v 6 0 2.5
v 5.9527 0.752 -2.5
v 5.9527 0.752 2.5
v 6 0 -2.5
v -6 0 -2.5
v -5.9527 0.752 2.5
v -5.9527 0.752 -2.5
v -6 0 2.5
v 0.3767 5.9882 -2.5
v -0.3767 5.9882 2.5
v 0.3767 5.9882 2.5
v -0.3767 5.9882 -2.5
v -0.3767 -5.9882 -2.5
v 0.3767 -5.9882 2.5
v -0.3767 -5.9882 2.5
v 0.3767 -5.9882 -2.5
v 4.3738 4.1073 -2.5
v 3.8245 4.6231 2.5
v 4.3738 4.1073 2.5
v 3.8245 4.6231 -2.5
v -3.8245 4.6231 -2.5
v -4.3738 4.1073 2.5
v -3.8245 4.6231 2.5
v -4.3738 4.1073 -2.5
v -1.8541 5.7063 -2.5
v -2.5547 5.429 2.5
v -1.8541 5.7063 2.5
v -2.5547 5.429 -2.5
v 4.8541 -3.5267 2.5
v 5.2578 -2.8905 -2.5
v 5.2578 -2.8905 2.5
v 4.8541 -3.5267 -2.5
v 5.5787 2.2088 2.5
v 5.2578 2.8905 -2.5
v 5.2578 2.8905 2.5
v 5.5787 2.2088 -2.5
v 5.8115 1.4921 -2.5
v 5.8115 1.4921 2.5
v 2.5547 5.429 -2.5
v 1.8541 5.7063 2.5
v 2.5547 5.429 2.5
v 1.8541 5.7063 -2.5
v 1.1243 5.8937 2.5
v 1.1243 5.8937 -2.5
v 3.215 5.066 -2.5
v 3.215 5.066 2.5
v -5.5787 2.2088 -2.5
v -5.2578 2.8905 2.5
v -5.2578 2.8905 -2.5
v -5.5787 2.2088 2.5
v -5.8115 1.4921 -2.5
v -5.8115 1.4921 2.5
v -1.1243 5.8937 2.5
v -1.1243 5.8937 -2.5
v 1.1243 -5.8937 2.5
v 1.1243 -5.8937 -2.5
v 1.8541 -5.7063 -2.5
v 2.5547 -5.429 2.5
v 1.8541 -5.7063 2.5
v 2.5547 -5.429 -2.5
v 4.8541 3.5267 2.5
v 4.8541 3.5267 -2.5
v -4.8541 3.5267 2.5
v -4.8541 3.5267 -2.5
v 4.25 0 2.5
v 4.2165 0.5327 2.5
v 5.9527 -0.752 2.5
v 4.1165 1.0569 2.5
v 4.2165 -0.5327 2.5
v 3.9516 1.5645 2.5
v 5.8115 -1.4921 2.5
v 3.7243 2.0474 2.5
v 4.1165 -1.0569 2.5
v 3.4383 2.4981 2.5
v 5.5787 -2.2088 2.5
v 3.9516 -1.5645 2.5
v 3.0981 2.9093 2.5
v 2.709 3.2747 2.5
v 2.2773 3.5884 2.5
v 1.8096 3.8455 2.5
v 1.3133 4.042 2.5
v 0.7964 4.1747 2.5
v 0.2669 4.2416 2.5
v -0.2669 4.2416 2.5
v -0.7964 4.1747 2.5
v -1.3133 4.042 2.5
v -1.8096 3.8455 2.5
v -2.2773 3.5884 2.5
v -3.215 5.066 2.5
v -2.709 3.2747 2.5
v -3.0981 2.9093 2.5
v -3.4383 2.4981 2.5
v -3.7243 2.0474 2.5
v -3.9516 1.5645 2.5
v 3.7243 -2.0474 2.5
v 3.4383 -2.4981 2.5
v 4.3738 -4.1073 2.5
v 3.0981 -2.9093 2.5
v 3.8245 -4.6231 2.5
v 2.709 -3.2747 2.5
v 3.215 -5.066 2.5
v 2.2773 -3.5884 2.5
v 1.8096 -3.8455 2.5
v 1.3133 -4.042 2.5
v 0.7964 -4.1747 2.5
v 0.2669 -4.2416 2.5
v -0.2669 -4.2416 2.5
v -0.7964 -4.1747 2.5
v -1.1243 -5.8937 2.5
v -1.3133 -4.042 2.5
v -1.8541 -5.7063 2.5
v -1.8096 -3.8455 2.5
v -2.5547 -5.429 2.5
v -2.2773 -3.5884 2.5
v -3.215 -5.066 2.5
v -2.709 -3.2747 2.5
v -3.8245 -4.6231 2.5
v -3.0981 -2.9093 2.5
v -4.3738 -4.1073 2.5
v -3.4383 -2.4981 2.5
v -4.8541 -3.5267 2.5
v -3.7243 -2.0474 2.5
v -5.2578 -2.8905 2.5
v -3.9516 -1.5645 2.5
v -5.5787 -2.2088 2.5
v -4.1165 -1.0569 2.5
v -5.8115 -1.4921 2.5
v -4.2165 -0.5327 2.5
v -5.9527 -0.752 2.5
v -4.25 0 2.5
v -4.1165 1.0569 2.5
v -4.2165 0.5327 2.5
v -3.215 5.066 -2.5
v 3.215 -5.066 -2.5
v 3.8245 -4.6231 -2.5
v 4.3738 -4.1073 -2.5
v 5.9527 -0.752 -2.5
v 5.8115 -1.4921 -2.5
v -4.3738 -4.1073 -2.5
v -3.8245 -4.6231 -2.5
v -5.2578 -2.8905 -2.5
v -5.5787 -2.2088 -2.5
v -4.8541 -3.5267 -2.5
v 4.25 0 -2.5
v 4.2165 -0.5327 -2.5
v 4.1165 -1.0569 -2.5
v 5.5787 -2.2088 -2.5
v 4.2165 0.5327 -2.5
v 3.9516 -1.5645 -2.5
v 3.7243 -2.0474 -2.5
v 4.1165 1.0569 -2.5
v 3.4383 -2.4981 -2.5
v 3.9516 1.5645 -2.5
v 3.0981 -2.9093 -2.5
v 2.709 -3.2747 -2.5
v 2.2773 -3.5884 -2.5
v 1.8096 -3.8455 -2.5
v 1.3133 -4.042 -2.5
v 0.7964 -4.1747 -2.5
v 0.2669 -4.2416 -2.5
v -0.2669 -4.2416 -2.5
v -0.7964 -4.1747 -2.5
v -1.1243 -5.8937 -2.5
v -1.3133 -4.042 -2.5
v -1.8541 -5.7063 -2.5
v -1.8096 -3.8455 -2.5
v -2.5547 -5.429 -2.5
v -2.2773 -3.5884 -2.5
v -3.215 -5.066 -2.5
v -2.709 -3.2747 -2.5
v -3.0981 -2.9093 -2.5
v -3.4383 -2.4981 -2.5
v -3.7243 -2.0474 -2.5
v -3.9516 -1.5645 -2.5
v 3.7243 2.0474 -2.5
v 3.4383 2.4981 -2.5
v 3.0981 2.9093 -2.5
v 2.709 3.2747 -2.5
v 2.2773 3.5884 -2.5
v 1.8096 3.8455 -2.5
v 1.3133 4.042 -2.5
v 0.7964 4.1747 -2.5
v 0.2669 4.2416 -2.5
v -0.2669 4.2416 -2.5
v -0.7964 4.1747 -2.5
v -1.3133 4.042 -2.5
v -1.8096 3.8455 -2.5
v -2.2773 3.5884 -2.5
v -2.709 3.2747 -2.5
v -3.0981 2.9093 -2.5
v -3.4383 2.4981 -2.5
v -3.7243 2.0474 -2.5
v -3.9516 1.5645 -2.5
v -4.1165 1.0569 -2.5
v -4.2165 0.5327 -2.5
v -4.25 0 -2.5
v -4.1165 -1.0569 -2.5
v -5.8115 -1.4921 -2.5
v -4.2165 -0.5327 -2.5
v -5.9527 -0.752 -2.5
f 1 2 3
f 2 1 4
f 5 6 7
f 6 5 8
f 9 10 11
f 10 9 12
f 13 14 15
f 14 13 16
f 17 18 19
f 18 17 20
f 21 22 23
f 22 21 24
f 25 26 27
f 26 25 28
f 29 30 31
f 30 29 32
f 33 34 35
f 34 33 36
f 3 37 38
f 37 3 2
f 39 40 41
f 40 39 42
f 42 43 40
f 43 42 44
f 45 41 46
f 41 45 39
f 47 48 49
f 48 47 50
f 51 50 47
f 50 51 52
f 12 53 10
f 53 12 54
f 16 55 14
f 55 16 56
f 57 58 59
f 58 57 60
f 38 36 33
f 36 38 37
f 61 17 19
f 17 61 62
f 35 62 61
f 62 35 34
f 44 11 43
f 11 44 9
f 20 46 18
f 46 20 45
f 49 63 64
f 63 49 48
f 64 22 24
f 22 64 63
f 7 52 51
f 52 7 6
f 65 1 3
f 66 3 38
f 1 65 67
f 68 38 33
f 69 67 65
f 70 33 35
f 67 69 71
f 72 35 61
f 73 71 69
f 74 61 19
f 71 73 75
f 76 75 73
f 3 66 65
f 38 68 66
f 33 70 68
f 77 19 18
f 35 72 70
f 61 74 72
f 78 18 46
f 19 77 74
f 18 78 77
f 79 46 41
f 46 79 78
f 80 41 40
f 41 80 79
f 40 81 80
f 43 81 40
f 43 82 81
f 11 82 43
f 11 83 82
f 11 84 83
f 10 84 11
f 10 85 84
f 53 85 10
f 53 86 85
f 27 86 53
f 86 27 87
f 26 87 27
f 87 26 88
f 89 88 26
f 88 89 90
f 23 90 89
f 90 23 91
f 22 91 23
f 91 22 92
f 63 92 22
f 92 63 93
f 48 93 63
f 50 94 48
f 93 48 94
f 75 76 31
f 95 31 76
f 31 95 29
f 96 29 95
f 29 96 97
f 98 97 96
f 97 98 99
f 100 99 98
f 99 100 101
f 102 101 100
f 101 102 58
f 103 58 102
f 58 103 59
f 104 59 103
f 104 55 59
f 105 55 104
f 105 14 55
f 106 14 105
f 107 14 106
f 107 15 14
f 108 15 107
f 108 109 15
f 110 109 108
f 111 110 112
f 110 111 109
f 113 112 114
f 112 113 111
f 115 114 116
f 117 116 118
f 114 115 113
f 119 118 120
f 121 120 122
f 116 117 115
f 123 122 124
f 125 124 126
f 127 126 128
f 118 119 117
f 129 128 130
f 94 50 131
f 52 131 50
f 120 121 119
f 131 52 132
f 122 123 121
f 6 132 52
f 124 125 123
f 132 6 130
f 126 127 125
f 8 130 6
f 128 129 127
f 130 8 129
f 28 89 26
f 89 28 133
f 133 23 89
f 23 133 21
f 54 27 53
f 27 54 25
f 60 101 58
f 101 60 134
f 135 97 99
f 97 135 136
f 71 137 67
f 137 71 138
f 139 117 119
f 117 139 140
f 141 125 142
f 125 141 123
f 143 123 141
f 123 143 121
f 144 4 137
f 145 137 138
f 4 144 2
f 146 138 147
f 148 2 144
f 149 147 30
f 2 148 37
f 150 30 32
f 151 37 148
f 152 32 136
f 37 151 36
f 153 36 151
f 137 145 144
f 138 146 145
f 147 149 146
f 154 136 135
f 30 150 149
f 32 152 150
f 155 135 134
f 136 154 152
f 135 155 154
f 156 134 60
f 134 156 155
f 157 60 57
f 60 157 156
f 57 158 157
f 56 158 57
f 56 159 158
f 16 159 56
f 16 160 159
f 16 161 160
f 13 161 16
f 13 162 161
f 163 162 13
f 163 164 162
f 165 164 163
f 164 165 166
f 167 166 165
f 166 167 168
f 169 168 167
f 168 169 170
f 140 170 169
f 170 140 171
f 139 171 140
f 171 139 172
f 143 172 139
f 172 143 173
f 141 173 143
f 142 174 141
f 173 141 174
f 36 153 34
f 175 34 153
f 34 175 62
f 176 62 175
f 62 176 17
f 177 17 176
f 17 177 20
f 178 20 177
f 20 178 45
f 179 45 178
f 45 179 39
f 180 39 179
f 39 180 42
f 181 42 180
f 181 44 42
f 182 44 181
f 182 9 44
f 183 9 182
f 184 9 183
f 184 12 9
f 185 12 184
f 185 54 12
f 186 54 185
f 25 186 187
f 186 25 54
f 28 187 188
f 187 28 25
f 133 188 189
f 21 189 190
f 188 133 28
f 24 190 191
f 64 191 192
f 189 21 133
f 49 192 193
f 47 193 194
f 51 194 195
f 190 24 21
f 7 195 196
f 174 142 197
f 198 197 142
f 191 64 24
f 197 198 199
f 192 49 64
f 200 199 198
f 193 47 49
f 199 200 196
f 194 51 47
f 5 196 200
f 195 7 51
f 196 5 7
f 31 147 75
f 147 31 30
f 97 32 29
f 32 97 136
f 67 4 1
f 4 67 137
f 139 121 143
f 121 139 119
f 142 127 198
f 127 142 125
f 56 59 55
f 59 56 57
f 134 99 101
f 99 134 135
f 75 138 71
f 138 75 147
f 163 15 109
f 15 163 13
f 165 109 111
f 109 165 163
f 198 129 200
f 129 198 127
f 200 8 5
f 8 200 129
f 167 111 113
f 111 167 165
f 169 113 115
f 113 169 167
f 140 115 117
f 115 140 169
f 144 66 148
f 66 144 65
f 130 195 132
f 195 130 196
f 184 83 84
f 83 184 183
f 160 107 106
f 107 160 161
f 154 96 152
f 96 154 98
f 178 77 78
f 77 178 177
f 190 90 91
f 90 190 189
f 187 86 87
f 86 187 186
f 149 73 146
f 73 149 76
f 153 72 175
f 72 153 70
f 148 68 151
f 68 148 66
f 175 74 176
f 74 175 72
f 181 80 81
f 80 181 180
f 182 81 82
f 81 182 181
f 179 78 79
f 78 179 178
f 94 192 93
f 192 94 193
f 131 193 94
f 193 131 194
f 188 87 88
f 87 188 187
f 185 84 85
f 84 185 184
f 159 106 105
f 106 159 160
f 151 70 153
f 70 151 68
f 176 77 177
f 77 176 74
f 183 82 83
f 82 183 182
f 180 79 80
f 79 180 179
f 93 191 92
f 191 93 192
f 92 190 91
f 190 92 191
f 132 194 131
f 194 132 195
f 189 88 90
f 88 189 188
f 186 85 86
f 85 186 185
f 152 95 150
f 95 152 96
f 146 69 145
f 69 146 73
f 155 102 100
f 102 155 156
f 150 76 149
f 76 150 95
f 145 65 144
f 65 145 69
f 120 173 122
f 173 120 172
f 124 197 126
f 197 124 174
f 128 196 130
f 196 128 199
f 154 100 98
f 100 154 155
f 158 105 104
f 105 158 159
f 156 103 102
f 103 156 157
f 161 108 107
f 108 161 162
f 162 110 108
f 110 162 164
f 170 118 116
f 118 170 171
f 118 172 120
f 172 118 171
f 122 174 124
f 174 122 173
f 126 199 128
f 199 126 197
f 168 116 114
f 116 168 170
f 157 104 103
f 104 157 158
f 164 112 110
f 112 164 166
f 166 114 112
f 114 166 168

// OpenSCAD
$fn = 50;


difference() {
	union() {
		translate(v = [0, 0, -2.5000000000]) {
			cylinder(h = 5, r = 6.0000000000);
		}
	}
	union() {
		translate(v = [0, 0, -100.0000000000]) {
			cylinder(h = 200, r = 4.2500000000);
		}
	}
}
